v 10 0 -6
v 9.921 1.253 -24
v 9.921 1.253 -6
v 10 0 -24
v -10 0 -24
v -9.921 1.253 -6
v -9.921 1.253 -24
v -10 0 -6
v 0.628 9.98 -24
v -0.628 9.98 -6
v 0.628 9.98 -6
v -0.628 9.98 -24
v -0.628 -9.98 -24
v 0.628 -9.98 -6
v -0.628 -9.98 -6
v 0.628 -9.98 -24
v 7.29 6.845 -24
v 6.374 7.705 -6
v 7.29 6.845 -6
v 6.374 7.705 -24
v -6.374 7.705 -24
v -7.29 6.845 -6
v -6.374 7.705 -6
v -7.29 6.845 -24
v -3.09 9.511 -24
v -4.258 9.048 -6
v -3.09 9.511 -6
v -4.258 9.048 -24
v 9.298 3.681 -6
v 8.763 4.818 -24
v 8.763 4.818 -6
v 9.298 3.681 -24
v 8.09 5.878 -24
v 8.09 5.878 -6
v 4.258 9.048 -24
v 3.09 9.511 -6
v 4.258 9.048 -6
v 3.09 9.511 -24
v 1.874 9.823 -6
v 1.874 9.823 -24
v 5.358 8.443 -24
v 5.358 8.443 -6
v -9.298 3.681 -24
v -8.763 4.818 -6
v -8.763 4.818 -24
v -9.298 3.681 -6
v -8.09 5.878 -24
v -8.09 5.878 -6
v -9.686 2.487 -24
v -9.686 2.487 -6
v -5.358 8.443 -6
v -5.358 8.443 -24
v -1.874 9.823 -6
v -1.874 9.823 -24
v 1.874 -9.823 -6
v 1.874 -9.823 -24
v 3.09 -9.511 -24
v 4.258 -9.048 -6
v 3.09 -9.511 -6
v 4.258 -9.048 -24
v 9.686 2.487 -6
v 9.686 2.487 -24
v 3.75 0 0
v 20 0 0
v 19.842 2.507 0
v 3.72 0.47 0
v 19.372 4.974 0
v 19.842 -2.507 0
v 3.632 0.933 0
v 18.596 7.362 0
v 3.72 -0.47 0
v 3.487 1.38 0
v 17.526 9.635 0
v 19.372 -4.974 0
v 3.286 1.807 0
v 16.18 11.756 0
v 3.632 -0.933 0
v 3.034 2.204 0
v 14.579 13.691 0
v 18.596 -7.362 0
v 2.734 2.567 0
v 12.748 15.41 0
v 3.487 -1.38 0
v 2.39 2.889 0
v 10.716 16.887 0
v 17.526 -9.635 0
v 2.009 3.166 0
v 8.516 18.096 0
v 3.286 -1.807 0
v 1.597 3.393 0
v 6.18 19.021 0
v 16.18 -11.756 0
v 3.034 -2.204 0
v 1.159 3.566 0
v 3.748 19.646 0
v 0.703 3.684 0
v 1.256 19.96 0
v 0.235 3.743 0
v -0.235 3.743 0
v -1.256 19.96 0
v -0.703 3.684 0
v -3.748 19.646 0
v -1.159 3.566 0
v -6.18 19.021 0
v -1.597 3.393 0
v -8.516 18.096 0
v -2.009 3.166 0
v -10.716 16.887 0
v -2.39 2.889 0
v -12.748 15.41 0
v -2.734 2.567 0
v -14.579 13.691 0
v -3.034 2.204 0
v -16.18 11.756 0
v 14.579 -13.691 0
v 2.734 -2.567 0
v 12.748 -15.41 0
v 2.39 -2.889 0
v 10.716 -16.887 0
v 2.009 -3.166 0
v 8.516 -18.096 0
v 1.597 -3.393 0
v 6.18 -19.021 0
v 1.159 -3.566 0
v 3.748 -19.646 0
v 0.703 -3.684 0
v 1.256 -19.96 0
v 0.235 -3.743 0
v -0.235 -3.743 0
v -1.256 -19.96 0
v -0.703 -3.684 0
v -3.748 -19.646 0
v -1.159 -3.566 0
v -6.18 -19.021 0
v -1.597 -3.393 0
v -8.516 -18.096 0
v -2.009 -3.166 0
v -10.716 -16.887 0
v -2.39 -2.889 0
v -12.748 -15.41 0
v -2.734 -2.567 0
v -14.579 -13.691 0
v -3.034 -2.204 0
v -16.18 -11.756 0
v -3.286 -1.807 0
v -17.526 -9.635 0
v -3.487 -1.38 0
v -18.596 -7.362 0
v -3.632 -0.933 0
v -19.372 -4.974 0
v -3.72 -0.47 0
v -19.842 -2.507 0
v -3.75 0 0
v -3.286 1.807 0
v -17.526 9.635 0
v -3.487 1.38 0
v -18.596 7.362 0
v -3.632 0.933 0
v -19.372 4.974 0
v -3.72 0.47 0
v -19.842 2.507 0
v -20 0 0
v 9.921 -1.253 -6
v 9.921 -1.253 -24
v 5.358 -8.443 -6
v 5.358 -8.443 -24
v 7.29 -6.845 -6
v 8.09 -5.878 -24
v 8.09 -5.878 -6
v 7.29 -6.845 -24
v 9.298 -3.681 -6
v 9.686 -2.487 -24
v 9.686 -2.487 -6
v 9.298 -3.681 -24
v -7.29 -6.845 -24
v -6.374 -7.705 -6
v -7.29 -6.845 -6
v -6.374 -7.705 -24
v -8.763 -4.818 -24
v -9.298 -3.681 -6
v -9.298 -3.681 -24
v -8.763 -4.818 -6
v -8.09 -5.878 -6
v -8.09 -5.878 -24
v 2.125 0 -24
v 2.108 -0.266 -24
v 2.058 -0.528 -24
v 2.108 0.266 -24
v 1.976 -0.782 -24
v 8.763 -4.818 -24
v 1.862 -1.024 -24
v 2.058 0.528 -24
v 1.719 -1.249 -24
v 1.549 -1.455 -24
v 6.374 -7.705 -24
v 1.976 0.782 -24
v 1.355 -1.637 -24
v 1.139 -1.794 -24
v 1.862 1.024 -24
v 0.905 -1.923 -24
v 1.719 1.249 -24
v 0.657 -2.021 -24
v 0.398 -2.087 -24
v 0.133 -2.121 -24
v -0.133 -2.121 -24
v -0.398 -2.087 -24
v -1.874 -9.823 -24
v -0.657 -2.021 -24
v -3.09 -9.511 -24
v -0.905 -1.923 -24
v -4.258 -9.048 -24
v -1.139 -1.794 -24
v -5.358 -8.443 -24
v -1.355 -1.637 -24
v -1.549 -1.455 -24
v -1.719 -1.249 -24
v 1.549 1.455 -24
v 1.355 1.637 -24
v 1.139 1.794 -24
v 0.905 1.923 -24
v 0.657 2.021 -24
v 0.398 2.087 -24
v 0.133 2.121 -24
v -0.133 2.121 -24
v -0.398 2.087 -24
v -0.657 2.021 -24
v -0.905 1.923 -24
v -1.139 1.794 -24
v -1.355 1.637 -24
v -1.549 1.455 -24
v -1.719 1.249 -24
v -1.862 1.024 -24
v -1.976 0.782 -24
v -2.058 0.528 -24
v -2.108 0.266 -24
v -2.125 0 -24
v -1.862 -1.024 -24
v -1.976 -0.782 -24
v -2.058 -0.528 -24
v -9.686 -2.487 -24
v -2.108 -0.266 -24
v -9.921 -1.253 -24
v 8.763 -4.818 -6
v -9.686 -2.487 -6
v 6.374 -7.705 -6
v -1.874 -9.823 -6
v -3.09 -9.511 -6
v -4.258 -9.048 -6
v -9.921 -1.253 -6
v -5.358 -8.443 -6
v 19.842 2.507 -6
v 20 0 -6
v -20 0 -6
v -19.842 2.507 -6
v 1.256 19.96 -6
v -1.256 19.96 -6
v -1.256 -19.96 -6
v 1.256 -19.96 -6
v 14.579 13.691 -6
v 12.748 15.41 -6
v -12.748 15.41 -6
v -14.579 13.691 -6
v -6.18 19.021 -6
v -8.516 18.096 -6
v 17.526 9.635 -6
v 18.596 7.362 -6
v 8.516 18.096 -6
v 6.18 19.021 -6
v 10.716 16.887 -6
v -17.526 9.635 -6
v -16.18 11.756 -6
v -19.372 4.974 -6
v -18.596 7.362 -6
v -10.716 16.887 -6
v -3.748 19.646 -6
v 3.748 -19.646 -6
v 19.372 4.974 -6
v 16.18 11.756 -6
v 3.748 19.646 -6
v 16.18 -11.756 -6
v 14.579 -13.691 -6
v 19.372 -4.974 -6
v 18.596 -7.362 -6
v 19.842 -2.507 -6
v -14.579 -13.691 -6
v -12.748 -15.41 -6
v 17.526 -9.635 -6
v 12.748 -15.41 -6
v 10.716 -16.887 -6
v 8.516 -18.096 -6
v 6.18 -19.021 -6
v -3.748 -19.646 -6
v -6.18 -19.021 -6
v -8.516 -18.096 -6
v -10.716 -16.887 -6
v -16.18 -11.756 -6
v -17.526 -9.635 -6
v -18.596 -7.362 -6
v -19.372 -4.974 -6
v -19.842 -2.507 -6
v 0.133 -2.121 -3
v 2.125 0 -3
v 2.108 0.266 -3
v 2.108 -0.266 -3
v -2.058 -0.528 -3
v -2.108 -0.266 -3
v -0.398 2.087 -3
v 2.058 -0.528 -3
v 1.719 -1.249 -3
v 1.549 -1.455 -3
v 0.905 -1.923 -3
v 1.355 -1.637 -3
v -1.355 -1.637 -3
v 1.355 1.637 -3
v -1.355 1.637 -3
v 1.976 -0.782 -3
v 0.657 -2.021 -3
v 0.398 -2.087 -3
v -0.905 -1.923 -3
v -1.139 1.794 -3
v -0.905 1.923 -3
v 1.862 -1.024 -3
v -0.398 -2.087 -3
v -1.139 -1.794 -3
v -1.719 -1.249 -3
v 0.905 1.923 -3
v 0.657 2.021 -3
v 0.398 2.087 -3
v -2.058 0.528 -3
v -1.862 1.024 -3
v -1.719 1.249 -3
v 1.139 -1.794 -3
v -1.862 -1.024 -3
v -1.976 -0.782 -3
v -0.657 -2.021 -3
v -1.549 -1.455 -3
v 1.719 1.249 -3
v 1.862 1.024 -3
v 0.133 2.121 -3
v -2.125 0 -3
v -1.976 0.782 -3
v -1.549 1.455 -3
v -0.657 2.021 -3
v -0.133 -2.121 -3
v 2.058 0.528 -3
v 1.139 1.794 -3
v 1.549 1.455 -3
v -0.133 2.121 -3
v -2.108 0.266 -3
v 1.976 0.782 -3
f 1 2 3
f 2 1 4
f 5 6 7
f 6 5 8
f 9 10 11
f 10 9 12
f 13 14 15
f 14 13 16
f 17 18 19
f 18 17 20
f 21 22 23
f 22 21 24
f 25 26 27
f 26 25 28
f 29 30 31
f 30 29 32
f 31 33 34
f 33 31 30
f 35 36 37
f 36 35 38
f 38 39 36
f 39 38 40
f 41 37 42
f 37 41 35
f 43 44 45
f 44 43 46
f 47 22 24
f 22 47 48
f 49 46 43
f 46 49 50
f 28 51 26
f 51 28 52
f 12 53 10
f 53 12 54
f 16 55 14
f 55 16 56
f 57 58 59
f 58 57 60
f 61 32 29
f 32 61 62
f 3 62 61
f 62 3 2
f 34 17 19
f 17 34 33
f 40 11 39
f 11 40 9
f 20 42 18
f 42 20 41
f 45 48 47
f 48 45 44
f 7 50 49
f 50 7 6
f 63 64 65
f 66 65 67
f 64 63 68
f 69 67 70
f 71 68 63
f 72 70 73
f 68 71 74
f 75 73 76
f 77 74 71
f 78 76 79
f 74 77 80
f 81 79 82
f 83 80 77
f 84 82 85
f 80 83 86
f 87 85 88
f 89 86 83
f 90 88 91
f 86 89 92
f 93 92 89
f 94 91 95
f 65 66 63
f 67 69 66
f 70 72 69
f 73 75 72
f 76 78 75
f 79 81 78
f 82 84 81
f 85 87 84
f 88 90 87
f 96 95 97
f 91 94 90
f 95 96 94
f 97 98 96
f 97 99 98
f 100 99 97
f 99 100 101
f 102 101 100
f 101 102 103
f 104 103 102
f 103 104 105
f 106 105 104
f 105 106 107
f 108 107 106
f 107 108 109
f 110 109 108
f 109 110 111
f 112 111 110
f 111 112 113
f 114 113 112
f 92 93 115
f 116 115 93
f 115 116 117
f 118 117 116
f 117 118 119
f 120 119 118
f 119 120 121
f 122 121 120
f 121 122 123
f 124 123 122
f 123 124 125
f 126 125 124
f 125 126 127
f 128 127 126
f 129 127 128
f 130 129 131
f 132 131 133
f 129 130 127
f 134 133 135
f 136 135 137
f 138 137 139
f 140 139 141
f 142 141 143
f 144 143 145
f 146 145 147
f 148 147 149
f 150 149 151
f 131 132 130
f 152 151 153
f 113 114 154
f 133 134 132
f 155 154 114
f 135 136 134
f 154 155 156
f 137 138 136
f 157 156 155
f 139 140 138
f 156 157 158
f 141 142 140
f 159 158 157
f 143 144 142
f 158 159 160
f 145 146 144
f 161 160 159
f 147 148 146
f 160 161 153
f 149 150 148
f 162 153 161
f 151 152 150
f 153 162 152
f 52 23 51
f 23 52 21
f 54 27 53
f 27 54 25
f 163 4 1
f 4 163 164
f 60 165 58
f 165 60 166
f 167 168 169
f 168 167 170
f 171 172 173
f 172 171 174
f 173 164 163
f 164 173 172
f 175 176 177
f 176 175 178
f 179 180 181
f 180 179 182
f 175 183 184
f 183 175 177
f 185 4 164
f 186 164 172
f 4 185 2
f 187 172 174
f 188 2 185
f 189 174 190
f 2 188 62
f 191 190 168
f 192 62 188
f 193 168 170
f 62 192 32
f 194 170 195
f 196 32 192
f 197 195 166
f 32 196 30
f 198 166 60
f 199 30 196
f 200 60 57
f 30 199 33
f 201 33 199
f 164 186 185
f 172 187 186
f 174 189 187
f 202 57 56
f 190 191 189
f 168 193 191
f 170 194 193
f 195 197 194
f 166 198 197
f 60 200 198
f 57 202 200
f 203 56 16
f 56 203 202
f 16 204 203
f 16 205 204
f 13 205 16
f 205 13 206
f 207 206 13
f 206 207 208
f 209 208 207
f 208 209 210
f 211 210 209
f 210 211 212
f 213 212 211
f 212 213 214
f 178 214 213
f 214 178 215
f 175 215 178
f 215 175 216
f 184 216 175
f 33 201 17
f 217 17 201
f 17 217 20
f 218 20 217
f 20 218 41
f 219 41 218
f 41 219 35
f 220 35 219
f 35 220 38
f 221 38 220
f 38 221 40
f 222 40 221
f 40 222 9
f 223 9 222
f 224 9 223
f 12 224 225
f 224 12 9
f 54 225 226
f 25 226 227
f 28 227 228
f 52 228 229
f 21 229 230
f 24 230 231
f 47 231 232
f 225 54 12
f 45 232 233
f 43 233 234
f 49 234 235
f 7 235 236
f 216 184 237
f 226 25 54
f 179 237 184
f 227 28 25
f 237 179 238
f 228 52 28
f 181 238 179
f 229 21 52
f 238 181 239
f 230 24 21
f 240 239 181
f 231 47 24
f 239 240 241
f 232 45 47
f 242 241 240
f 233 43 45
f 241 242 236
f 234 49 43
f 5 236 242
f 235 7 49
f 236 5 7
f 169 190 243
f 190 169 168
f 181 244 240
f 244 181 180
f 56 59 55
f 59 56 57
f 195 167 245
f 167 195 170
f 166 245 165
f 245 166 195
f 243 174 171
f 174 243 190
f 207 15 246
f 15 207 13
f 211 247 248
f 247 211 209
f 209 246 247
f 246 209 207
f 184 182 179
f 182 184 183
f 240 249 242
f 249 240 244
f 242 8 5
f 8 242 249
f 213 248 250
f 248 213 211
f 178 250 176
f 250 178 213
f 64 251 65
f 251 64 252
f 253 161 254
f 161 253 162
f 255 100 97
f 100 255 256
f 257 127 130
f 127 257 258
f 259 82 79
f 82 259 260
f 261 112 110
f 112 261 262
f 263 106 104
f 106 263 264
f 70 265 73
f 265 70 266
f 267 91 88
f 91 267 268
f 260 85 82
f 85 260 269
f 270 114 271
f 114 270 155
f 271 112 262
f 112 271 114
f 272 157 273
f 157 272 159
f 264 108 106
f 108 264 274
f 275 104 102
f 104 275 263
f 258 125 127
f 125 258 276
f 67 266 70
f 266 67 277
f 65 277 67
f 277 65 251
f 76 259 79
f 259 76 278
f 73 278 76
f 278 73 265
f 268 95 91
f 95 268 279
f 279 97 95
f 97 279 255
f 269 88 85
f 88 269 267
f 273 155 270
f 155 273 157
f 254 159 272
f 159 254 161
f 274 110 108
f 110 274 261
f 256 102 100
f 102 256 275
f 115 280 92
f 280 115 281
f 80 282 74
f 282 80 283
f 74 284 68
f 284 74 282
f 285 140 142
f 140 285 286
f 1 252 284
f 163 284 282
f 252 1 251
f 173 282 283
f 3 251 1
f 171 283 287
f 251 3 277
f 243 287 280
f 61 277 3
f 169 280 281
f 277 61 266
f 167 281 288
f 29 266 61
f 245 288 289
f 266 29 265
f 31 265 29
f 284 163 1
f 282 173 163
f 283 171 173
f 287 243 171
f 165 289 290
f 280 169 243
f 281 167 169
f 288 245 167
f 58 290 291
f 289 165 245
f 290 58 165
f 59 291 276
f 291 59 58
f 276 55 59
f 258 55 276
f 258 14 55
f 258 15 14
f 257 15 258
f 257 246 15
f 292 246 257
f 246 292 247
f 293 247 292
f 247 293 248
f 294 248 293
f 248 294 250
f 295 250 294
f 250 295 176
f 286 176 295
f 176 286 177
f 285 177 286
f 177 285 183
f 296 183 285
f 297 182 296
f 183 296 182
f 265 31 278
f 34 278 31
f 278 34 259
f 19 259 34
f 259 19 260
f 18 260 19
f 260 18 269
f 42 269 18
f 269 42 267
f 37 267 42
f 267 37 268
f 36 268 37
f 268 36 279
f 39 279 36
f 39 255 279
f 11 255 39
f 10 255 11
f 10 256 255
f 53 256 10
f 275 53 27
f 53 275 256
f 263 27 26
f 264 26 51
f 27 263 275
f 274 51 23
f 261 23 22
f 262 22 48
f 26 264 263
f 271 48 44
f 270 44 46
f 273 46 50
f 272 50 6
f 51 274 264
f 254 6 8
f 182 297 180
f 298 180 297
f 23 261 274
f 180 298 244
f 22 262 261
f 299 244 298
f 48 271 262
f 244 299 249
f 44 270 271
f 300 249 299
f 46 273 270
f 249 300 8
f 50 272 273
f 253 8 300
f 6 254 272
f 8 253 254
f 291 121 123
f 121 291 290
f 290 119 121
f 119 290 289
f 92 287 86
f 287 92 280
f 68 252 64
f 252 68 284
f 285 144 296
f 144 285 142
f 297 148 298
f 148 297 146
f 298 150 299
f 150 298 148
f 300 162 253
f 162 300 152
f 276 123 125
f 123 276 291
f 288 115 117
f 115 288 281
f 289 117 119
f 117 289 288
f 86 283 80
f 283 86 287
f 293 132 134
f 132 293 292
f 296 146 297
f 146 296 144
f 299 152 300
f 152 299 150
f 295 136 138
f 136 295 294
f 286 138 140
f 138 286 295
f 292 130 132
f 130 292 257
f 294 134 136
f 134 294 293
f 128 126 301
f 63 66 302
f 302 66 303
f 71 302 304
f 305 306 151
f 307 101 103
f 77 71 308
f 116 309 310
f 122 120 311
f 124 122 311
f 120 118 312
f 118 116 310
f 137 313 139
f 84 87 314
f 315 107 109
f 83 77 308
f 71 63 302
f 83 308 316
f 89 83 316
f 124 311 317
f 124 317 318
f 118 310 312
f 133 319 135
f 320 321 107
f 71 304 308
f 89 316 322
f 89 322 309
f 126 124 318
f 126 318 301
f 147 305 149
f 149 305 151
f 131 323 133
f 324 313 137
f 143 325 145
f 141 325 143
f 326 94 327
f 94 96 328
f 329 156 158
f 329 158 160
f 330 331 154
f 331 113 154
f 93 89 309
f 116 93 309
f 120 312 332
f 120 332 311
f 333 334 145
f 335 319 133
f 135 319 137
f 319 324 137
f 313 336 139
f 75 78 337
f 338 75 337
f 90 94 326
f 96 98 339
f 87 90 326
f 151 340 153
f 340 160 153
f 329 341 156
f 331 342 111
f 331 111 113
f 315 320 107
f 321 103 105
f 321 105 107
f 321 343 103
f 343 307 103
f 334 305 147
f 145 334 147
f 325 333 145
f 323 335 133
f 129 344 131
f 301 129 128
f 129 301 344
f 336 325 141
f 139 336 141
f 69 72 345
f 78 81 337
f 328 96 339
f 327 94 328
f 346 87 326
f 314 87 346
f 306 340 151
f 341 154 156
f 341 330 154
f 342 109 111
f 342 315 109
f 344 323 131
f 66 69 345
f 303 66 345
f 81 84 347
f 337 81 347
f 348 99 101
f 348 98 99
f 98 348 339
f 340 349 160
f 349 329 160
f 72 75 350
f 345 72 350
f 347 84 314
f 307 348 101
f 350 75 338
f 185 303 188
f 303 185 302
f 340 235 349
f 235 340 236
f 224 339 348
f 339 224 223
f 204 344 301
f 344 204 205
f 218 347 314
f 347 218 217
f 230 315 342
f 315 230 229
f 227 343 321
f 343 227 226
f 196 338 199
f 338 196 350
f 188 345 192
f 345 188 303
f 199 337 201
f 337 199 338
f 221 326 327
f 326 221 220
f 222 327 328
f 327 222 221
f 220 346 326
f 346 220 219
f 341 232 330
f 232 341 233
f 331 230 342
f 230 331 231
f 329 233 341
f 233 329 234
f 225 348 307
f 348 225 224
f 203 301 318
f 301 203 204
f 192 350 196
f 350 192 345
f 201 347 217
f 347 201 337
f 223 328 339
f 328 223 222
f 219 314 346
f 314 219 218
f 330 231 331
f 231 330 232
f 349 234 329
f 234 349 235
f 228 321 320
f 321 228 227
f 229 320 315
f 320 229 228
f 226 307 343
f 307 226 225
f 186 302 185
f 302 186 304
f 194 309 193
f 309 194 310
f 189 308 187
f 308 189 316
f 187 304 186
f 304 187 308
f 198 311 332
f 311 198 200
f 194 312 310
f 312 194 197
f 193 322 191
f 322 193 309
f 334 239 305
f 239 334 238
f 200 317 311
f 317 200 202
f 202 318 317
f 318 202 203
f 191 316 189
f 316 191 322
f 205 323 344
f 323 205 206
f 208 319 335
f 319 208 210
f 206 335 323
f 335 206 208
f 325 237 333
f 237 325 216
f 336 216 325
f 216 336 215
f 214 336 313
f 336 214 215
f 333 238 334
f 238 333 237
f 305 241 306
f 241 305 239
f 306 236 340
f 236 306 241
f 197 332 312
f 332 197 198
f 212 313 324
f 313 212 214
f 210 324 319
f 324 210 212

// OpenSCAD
$fn = 50;


difference() {
	union() {
		translate(v = [0, 0, -24.0000000000]) {
			cylinder(h = 24, r = 10.0000000000);
		}
		translate(v = [0, 0, -6.0000000000]) {
			cylinder(h = 6, r = 20.0000000000);
		}
	}
	union() {
		translate(v = [0, 0, 0]) {
			rotate(a = [0, 0, 0]) {
				difference() {
					union() {
						#translate(v = [0, 0, -24.0000000000]) {
							cylinder(h = 24, r = 2.0000000000);
						}
						#translate(v = [0, 0, -3]) {
							cylinder(h = 3, r = 10.0000000000, r1 = 2.1250000000, r2 = 3.7500000000);
						}
						#translate(v = [0, 0, -24.0000000000]) {
							cylinder(h = 24, r = 2.1250000000);
						}
						#translate(v = [0, 0, -24.0000000000]) {
							cylinder(h = 24, r = 2.0000000000);
						}
					}
					union();
				}
			}
		}
	}
}
